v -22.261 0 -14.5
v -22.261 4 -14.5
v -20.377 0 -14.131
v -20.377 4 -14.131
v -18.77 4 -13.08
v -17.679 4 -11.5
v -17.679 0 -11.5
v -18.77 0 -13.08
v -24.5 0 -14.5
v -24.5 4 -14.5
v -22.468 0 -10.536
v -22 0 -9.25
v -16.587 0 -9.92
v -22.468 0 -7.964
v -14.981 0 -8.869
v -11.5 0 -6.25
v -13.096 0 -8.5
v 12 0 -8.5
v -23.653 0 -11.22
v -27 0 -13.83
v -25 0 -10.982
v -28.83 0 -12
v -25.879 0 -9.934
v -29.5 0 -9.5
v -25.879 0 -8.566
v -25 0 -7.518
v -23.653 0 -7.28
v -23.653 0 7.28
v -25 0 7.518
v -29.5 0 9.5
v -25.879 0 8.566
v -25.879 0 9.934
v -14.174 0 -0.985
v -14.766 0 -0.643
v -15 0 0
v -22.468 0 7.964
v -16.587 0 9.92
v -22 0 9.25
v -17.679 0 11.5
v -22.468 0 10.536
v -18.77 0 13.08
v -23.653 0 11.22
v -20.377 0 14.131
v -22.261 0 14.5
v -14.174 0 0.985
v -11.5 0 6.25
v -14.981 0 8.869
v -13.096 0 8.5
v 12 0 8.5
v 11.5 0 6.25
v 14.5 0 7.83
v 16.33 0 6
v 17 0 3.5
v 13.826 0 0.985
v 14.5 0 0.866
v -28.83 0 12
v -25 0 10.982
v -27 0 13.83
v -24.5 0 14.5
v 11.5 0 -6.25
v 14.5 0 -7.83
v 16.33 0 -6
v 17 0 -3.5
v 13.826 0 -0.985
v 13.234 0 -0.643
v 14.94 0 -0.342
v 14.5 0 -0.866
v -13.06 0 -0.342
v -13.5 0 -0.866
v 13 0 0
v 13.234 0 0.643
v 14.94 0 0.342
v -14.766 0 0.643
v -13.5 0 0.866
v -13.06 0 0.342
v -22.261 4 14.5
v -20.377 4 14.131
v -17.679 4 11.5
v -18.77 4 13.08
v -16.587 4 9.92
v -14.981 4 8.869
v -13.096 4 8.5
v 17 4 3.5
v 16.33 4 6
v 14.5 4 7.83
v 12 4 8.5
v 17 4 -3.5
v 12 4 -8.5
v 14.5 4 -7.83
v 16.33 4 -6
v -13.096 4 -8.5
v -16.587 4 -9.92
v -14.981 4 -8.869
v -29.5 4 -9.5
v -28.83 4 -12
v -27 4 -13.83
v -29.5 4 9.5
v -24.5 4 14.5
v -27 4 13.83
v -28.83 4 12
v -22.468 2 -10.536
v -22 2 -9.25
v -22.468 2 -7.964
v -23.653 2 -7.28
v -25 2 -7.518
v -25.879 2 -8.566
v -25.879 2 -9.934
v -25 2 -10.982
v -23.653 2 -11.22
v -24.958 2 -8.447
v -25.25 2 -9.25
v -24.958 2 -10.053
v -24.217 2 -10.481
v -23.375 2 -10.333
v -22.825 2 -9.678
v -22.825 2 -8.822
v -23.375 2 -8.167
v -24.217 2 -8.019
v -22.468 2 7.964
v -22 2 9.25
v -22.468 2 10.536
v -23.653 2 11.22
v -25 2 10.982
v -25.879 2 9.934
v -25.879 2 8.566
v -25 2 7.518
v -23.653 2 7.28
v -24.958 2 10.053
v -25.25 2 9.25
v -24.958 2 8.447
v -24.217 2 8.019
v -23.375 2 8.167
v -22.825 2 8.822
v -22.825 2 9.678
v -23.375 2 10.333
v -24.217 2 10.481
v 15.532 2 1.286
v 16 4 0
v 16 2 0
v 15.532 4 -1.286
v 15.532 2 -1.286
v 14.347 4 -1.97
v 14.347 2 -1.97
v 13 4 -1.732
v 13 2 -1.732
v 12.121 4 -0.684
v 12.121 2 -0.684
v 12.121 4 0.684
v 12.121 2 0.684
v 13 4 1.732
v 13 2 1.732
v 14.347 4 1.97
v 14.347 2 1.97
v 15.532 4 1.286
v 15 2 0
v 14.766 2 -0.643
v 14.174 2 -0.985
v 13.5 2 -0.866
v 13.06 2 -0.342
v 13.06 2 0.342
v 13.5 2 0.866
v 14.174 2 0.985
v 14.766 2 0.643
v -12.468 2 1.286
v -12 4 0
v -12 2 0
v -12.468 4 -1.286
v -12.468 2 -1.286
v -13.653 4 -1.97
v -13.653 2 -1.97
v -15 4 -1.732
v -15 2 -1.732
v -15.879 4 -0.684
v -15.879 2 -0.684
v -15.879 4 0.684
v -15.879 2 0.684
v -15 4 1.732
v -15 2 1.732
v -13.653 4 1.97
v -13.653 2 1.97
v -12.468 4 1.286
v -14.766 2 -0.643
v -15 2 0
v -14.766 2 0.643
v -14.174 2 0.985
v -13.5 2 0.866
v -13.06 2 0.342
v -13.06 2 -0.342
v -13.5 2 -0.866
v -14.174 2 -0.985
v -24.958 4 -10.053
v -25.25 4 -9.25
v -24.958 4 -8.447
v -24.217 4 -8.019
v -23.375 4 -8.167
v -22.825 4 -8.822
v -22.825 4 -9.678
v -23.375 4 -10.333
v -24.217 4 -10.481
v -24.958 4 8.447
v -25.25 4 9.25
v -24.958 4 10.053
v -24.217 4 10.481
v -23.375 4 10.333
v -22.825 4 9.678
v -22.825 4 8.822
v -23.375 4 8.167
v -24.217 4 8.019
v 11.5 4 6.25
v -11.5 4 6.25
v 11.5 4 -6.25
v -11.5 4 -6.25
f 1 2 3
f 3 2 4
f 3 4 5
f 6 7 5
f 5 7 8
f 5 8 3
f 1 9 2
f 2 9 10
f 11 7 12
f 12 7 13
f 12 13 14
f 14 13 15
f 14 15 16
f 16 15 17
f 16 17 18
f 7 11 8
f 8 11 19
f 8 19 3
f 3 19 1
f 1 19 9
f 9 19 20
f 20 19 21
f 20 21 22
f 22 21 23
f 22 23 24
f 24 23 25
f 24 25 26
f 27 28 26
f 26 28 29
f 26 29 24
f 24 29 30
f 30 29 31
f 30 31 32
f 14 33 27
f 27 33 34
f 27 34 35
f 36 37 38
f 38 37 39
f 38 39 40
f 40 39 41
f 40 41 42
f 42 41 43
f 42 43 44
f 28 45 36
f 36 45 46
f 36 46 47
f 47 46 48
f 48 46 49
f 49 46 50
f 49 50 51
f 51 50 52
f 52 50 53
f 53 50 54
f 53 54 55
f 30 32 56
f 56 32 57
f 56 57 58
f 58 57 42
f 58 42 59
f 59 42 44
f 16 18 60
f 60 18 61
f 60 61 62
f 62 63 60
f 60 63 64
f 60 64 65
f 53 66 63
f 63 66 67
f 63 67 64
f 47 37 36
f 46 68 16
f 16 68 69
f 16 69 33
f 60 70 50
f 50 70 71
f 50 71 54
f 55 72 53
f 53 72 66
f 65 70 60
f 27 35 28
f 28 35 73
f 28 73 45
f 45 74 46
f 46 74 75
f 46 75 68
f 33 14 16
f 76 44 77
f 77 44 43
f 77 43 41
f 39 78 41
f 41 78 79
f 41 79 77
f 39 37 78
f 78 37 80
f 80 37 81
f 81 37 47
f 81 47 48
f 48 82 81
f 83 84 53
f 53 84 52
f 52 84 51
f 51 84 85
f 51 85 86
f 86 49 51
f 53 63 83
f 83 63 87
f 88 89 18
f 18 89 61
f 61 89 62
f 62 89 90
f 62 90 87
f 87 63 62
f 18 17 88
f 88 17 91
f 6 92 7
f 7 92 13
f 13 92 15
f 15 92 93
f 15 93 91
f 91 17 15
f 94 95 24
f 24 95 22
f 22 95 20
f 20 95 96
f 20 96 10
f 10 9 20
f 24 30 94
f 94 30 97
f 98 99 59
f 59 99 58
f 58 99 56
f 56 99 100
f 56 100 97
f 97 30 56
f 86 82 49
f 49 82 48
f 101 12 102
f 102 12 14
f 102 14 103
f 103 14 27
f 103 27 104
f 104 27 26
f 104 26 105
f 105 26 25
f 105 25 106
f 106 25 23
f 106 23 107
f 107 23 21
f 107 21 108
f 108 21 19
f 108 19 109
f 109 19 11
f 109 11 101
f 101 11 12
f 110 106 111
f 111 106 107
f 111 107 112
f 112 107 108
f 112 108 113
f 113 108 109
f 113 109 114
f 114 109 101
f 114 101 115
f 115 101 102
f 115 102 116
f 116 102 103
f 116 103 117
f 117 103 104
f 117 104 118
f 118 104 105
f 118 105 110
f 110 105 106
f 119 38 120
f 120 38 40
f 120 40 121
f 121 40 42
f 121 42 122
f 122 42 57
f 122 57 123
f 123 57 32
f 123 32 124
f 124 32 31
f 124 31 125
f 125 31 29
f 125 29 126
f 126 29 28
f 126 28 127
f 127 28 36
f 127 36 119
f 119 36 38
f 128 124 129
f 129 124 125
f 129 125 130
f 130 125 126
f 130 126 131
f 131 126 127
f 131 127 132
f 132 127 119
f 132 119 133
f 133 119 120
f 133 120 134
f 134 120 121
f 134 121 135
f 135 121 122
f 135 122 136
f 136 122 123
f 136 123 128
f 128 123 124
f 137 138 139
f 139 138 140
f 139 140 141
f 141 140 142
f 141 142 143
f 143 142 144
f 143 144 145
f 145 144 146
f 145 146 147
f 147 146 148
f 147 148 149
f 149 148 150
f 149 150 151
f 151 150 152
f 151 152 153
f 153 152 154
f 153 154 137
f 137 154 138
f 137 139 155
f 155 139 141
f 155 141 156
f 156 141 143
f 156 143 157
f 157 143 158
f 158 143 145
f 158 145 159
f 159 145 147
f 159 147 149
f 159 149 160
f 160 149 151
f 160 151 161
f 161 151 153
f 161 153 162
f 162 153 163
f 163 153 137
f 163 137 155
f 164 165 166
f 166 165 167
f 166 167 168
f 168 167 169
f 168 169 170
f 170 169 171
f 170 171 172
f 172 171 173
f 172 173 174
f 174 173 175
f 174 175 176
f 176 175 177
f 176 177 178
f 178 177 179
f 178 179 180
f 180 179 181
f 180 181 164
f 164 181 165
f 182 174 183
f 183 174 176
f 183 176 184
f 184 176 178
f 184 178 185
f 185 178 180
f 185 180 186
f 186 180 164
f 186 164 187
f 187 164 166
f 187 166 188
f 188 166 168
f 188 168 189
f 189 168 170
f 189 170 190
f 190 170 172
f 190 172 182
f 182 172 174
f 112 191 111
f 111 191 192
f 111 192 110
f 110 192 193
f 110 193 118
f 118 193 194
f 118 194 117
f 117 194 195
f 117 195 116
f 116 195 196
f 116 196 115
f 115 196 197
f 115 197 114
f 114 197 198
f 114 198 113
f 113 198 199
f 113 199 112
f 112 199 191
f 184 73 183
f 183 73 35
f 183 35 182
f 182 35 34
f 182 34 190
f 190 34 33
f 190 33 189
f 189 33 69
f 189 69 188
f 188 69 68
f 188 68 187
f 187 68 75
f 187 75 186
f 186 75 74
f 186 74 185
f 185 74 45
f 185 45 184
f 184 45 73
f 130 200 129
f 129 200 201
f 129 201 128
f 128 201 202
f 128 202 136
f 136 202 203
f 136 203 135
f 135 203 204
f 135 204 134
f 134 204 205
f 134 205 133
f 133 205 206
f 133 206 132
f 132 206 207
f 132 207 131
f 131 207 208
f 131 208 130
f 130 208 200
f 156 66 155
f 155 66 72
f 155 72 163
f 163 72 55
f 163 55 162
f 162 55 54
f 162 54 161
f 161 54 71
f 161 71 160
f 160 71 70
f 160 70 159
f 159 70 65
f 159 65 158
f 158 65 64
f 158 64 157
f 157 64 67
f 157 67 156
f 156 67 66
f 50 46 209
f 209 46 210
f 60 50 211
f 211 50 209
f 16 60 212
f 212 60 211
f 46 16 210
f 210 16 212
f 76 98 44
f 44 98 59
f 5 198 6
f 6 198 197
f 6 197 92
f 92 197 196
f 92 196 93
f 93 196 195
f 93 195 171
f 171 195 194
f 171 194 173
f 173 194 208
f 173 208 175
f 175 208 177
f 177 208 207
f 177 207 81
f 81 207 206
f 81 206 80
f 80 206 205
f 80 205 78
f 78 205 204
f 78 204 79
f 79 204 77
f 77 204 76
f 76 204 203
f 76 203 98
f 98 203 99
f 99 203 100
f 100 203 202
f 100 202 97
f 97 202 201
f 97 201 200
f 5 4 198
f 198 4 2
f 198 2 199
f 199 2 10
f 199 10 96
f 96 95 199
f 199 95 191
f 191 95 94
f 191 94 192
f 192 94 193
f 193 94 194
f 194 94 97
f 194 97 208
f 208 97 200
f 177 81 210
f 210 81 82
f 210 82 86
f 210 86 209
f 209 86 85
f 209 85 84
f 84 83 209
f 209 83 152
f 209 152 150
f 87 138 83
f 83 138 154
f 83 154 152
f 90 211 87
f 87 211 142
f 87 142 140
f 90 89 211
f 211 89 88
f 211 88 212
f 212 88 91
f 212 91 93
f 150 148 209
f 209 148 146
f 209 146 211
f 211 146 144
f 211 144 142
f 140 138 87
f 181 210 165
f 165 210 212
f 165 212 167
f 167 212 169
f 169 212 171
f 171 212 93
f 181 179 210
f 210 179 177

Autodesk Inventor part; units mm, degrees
ref_plane "YZ Plane" through (0, 0, 0) normal (1, 0, 0) x (0, 1, 0)
ref_plane "XZ Plane" through (0, 0, 0) normal (0, 1, 0) x (-1, 0, 0)
ref_plane "XY Plane" through (0, 0, 0) normal (0, 0, 1) x (1, 0, 0)
sketch "Sketch1" plane through (0, 0, 0) normal (0, 1, 0) x (-1, 0, 0)
  line L0 (11.5, 6.25) -> (-11.5, 6.25)
  line L1 (-11.5, 6.25) -> (-11.5, -6.25)
  line L2 (-11.5, -6.25) -> (11.5, -6.25)
  line L3 (11.5, -6.25) -> (11.5, 6.25)
  line L4 (11.5, 6.25) -> (-11.5, -6.25) construction
  line L5 (-11.5, 6.25) -> (11.5, -6.25) construction
  line L6 (17, 8.5) -> (-17, 8.5)
  line L7 (-17, 8.5) -> (-17, -8.5)
  line L8 (-17, -8.5) -> (17, -8.5)
  line L9 (17, -8.5) -> (17, 8.5) construction
  line L10 (17, 8.5) -> (-17, -8.5) construction
  line L11 (-17, 8.5) -> (17, -8.5) construction
  line L12 (38.8, 0) -> (-26.3, 0) projected
  line L13 (0, -20.3) -> (0, 20.3) projected
  line L14 (29.5, 14.5) -> (18.5, 14.5)
  line L15 (18.5, 14.5) -> (18.5, -14.5) construction
  line L16 (18.5, -14.5) -> (29.5, -14.5)
  line L17 (29.5, -14.5) -> (29.5, 14.5)
  line L18 (29.5, 14.5) -> (18.5, -14.5) construction
  line L19 (18.5, 14.5) -> (29.5, -14.5) construction
  line L20 (18.5, 14.5) -> (17, 8.5)
  line L21 (17, -8.5) -> (18.5, -14.5)
  circle A0 centre (-14, 0) radius 1
  circle A1 centre (14, 0) radius 1
  circle A2 centre (24, 9.25) radius 1.25
  circle A3 centre (24, -9.25) radius 1.25
  point P0 (0, 0)
  point P1 (24, 0)
  dimension "d0" = 23
  dimension "d1" = 12.5
  dimension "d2" = 17
  dimension "d3" = 34
  dimension "d11" = 2
  dimension "d12" = 28
  dimension "d13" = 12.5
  dimension "d14" = 2.5
  dimension "d15" = 9.25
  dimension "d16" = 29
  dimension "d18" = 5.5
extrude "Extrusion1" add sketch "Sketch1" along normal blind 4 contours L0 L13 L6 L20 L14 L17 L12 A1 L3 | L0 L1 L12 A0 L7 L6 L13 | L12 A1 L17 L16 L21 L8 L13 L2 L3 | L1 L2 L13 L8 L7 L12 A0
sketch "Sketch2" plane through (0, 4, 0) normal (0, 1, 0) x (1, 0, 0)
  circle A0 centre (14, 0) radius 1 projected
  circle A1 centre (14, 0) radius 2
  line L0 (0, 20.3) -> (0, -20.3) projected
  circle A2 centre (-14, 0) radius 2
  point P0 (0, 0)
  dimension "d21" = 4
extrude "Extrusion2" cut sketch "Sketch2" against normal blind 2
sketch "Sketch3" plane through (0, 0, 0) normal (0, -1, 0) x (1, 0, 0)
  line L0 (-38.8, 0) -> (26.3, 0) projected
  circle A0 centre (-24, 9.25) radius 1.25 projected
  circle A1 centre (-24, 9.25) radius 2
  circle A2 centre (-24, -9.25) radius 2
  point P0 (0, 0)
  dimension "d24" = 4
extrude "Extrusion3" cut sketch "Sketch3" against normal blind 2 contours A0 | A1 | A2
fillet "Fillet1" radius 5 8 edges at (-18.5, 2, 14.5) (-17, 2, 8.5) (-29.5, 2, 14.5) (-29.5, 2, -14.5) (-18.5, 2, -14.5) (-17, 2, -8.5) (17, 2, -8.5) (17, 2, 8.5)
properties part number "mount1"
